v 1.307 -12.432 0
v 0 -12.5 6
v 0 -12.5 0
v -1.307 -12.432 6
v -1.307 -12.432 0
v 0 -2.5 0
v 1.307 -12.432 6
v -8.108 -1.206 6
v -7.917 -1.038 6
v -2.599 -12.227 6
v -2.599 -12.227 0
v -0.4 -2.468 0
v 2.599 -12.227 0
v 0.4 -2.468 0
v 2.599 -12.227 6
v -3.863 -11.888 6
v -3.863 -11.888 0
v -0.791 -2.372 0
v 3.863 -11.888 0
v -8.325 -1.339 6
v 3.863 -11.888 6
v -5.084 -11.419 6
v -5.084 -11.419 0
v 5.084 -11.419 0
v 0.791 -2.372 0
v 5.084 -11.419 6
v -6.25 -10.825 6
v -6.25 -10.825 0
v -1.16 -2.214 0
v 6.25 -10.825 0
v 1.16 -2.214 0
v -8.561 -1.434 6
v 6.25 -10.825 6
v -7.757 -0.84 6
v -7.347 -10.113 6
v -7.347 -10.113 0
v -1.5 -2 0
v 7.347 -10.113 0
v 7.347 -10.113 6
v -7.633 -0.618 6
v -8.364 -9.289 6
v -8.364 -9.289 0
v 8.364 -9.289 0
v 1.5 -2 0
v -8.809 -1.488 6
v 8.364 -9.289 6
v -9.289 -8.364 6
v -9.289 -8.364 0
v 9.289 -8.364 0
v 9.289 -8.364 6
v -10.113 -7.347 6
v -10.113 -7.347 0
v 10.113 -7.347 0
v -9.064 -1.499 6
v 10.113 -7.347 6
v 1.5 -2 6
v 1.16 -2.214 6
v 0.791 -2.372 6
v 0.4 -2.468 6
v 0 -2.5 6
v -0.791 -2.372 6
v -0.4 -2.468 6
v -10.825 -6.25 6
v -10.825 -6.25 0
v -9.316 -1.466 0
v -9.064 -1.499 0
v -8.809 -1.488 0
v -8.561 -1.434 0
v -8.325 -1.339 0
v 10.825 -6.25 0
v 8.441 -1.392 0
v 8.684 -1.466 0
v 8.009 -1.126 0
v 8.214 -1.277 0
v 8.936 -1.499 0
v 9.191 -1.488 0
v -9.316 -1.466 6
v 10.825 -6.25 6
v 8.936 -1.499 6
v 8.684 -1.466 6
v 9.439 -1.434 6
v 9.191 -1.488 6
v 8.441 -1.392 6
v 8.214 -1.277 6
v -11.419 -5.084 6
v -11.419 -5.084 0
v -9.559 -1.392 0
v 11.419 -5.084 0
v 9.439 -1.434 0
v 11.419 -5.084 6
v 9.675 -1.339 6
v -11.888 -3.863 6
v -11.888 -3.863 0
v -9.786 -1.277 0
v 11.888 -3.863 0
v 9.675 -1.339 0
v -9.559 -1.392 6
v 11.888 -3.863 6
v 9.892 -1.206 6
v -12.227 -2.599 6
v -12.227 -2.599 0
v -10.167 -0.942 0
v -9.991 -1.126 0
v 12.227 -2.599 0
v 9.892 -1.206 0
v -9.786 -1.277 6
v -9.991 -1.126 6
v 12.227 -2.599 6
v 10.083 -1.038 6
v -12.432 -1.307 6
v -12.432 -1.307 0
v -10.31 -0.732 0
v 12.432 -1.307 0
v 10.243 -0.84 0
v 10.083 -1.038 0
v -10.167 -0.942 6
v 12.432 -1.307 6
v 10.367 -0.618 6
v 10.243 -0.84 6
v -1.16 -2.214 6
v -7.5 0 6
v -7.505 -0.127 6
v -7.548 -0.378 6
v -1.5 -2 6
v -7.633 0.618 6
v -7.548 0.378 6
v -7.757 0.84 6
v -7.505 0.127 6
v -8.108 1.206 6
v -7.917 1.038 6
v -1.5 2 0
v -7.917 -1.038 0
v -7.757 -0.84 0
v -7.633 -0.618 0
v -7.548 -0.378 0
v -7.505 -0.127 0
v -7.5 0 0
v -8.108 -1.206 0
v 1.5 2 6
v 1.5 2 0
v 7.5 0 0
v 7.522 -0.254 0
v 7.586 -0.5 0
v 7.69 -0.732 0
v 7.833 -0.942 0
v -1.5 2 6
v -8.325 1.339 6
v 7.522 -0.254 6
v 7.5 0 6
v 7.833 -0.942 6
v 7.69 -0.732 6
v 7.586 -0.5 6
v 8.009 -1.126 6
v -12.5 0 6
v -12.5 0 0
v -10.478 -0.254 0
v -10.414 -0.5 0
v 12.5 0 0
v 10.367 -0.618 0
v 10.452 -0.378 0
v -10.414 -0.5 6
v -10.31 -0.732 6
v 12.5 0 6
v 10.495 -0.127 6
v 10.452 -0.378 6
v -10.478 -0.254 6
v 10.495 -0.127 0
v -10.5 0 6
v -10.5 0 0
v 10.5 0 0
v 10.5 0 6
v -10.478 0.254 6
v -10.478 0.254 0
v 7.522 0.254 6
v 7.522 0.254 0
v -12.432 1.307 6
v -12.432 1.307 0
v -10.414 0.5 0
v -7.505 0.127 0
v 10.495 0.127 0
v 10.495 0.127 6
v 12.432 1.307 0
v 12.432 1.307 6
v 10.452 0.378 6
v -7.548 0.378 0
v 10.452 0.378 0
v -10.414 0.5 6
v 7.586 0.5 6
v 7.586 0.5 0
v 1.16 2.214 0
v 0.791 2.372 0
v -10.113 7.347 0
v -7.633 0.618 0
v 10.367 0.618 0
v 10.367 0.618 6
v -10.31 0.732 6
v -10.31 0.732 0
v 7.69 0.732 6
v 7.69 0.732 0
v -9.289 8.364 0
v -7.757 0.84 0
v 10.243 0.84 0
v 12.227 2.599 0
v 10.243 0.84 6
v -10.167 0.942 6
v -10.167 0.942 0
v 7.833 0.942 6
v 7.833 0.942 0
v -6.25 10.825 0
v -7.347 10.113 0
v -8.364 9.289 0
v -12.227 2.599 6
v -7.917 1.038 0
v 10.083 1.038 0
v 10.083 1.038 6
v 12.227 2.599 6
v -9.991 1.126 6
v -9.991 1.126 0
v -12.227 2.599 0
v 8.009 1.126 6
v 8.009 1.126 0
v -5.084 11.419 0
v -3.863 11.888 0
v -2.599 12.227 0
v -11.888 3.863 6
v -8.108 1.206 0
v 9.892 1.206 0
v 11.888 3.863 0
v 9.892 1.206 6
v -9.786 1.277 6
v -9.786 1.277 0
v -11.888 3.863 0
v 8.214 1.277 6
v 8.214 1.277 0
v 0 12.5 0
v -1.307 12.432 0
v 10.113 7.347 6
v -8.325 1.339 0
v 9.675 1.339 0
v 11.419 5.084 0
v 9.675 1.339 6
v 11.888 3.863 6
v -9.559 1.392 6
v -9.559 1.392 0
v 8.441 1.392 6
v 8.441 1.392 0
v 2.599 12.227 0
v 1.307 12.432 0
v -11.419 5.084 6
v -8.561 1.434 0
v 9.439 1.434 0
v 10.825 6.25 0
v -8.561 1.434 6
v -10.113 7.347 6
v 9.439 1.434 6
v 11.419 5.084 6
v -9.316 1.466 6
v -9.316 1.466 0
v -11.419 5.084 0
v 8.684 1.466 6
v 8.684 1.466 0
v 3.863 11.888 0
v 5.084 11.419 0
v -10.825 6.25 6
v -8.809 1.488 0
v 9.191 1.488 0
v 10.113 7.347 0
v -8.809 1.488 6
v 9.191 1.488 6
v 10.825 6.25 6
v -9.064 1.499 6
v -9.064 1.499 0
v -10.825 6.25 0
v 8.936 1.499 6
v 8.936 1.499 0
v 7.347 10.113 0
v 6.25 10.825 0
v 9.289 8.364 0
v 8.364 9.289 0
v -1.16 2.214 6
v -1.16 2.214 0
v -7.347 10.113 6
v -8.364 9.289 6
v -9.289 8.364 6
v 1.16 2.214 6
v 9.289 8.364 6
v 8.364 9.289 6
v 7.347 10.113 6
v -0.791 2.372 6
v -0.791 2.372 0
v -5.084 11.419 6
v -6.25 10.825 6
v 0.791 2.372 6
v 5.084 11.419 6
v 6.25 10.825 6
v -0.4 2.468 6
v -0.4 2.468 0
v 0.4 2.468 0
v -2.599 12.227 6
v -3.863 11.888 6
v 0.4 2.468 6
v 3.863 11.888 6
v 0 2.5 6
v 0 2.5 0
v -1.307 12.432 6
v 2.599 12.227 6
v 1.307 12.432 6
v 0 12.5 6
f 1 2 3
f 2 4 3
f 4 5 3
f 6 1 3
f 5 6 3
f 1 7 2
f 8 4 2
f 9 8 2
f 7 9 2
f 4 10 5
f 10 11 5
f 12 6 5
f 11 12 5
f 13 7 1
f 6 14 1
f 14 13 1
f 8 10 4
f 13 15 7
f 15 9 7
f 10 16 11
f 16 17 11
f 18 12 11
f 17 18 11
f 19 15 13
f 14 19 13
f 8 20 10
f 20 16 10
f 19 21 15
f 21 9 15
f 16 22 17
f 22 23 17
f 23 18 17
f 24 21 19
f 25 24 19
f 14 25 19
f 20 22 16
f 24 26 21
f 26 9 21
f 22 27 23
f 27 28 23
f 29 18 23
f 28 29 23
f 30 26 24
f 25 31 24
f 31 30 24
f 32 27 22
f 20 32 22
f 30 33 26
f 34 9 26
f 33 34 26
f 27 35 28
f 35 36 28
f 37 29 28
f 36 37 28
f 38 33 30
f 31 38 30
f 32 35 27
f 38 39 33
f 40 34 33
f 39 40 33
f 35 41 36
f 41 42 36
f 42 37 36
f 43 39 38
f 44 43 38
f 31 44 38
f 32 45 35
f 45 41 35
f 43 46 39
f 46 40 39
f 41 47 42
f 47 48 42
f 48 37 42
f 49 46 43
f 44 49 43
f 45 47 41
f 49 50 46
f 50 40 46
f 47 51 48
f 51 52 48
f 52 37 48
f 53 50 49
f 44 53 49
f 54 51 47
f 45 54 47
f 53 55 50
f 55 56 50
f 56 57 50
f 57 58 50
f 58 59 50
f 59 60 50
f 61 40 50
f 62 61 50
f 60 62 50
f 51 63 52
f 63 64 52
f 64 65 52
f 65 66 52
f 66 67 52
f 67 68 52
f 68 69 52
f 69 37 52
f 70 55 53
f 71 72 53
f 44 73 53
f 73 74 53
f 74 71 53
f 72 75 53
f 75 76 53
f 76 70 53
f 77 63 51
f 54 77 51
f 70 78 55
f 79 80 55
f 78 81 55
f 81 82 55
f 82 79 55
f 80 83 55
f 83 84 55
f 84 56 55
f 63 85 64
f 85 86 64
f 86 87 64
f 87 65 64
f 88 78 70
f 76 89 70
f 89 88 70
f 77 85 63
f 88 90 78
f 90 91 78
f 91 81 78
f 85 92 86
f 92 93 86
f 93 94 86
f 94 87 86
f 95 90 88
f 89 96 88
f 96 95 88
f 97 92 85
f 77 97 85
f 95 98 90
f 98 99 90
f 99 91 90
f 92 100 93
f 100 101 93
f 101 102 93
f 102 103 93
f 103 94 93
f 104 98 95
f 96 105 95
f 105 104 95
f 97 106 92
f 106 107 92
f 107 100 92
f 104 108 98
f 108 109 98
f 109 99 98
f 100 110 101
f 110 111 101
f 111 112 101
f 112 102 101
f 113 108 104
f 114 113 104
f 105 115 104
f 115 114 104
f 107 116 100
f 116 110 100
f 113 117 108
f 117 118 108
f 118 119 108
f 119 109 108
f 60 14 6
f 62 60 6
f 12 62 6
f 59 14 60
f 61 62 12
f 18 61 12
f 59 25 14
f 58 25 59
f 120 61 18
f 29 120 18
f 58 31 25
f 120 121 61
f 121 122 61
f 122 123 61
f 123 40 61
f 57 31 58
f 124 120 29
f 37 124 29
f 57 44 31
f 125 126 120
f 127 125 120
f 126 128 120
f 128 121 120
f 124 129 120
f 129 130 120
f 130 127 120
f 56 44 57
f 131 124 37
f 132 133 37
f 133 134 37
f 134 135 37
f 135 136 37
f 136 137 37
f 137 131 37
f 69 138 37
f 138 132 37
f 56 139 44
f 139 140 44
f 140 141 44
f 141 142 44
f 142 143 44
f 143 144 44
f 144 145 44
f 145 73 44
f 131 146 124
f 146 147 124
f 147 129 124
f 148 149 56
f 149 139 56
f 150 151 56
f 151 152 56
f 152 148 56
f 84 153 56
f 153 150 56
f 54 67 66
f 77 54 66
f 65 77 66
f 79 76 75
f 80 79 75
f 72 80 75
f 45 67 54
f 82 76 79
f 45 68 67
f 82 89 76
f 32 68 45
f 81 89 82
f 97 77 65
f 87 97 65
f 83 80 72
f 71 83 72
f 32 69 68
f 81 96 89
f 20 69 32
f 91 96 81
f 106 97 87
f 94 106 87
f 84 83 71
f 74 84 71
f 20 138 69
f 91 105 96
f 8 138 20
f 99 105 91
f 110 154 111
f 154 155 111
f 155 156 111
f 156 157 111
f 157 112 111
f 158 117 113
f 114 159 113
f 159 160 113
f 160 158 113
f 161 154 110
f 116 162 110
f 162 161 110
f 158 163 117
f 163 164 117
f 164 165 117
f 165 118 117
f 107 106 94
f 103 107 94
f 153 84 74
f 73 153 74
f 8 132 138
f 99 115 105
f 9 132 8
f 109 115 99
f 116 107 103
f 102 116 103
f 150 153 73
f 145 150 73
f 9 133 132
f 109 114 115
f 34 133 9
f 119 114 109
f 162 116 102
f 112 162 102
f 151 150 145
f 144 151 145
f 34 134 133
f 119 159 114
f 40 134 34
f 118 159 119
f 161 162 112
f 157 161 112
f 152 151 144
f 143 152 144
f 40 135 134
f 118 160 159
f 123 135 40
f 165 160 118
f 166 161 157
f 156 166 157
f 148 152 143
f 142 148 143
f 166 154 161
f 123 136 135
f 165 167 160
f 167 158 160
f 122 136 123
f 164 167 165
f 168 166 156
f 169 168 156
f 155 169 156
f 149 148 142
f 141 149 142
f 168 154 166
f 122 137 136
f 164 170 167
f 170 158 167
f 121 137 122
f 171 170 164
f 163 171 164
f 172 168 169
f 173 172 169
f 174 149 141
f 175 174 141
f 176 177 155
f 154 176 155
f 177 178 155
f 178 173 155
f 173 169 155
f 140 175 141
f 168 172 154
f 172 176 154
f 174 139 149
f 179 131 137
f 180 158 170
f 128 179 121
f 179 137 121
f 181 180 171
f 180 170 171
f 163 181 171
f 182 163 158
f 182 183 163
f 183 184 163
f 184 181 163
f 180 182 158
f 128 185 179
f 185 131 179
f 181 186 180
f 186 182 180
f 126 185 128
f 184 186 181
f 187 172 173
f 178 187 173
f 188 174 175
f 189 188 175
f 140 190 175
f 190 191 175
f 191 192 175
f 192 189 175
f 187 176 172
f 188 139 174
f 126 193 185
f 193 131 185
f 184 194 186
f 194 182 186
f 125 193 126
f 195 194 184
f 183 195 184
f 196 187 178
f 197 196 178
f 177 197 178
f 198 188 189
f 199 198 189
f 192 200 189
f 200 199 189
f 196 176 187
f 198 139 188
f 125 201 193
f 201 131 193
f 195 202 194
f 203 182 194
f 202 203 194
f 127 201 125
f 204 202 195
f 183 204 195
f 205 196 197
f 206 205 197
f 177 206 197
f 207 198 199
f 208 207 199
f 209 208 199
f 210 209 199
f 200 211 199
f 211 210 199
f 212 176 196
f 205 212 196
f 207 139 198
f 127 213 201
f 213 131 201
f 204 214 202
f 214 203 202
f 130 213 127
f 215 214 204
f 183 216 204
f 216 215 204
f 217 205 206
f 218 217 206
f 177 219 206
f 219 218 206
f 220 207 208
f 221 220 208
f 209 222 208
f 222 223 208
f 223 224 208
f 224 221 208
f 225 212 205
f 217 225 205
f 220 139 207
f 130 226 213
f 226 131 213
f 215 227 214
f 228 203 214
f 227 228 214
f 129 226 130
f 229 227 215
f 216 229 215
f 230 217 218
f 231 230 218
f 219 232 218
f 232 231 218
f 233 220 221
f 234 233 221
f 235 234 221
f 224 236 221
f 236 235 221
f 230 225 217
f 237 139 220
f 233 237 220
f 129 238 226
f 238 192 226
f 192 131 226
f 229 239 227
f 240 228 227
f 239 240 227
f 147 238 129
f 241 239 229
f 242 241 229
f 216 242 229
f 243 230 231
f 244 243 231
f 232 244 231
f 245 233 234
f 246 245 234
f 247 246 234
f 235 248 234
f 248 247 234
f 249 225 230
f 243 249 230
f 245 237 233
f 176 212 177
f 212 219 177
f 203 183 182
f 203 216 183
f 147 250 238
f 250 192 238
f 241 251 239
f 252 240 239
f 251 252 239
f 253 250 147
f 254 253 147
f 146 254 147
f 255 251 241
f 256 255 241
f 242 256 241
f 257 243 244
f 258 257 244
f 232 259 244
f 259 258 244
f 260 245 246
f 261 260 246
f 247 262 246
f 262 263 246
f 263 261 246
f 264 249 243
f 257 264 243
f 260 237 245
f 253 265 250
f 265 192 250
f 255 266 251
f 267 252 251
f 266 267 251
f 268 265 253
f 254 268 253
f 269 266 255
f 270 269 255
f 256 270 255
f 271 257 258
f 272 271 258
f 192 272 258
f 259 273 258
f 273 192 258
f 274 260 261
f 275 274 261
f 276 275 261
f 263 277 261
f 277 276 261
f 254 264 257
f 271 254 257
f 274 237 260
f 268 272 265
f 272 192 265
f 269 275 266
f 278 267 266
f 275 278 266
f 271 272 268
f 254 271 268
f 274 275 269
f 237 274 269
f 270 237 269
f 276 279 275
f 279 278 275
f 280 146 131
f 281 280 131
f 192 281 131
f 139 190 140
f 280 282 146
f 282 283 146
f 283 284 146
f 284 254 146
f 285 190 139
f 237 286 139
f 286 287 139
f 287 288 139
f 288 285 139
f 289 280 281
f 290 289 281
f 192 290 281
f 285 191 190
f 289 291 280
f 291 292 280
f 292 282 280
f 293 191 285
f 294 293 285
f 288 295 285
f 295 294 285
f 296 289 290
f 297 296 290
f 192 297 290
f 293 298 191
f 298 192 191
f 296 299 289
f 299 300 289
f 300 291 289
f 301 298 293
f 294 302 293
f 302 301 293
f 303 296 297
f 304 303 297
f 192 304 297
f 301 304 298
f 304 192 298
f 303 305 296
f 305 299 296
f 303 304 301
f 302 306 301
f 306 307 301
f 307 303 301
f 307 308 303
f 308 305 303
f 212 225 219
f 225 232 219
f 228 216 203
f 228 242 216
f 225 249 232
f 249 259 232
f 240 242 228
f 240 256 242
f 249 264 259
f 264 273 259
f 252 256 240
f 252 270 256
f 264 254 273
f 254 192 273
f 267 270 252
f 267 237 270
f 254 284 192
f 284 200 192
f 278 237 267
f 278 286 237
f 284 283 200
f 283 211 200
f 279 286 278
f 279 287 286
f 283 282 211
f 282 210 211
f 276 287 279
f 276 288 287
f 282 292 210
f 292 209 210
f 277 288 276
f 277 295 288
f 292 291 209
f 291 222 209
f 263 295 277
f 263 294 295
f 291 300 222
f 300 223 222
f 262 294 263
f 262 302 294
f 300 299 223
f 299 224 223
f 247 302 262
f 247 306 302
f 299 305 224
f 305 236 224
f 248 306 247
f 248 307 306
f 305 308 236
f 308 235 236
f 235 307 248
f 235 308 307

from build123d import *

# Parameters (mm, degrees)
SKETCH1_R           = 12.5
SKETCH1_R_2         = 1.5
BOSS_EXTRUDE1_DEPTH = 6


with BuildPart() as part:
    # Sketch1 → Boss-Extrude1 (new body)
    with BuildSketch(Plane.XY):
        Circle(SKETCH1_R)
        with BuildLine():
            Line((-1.5, -2), (-1.5, 2))
            ThreePointArc((-1.5, 2), (0, 2.5), (1.5, 2))
            Line((1.5, 2), (1.5, -2))
            ThreePointArc((1.5, -2), (0, -2.5), (-1.5, -2))
        make_face(mode=Mode.SUBTRACT)
        with Locations((-9, 0)):
            Circle(SKETCH1_R_2, mode=Mode.SUBTRACT)
        with Locations((9, 0)):
            Circle(SKETCH1_R_2, mode=Mode.SUBTRACT)
    extrude(amount=BOSS_EXTRUDE1_DEPTH)


solid = part.part
